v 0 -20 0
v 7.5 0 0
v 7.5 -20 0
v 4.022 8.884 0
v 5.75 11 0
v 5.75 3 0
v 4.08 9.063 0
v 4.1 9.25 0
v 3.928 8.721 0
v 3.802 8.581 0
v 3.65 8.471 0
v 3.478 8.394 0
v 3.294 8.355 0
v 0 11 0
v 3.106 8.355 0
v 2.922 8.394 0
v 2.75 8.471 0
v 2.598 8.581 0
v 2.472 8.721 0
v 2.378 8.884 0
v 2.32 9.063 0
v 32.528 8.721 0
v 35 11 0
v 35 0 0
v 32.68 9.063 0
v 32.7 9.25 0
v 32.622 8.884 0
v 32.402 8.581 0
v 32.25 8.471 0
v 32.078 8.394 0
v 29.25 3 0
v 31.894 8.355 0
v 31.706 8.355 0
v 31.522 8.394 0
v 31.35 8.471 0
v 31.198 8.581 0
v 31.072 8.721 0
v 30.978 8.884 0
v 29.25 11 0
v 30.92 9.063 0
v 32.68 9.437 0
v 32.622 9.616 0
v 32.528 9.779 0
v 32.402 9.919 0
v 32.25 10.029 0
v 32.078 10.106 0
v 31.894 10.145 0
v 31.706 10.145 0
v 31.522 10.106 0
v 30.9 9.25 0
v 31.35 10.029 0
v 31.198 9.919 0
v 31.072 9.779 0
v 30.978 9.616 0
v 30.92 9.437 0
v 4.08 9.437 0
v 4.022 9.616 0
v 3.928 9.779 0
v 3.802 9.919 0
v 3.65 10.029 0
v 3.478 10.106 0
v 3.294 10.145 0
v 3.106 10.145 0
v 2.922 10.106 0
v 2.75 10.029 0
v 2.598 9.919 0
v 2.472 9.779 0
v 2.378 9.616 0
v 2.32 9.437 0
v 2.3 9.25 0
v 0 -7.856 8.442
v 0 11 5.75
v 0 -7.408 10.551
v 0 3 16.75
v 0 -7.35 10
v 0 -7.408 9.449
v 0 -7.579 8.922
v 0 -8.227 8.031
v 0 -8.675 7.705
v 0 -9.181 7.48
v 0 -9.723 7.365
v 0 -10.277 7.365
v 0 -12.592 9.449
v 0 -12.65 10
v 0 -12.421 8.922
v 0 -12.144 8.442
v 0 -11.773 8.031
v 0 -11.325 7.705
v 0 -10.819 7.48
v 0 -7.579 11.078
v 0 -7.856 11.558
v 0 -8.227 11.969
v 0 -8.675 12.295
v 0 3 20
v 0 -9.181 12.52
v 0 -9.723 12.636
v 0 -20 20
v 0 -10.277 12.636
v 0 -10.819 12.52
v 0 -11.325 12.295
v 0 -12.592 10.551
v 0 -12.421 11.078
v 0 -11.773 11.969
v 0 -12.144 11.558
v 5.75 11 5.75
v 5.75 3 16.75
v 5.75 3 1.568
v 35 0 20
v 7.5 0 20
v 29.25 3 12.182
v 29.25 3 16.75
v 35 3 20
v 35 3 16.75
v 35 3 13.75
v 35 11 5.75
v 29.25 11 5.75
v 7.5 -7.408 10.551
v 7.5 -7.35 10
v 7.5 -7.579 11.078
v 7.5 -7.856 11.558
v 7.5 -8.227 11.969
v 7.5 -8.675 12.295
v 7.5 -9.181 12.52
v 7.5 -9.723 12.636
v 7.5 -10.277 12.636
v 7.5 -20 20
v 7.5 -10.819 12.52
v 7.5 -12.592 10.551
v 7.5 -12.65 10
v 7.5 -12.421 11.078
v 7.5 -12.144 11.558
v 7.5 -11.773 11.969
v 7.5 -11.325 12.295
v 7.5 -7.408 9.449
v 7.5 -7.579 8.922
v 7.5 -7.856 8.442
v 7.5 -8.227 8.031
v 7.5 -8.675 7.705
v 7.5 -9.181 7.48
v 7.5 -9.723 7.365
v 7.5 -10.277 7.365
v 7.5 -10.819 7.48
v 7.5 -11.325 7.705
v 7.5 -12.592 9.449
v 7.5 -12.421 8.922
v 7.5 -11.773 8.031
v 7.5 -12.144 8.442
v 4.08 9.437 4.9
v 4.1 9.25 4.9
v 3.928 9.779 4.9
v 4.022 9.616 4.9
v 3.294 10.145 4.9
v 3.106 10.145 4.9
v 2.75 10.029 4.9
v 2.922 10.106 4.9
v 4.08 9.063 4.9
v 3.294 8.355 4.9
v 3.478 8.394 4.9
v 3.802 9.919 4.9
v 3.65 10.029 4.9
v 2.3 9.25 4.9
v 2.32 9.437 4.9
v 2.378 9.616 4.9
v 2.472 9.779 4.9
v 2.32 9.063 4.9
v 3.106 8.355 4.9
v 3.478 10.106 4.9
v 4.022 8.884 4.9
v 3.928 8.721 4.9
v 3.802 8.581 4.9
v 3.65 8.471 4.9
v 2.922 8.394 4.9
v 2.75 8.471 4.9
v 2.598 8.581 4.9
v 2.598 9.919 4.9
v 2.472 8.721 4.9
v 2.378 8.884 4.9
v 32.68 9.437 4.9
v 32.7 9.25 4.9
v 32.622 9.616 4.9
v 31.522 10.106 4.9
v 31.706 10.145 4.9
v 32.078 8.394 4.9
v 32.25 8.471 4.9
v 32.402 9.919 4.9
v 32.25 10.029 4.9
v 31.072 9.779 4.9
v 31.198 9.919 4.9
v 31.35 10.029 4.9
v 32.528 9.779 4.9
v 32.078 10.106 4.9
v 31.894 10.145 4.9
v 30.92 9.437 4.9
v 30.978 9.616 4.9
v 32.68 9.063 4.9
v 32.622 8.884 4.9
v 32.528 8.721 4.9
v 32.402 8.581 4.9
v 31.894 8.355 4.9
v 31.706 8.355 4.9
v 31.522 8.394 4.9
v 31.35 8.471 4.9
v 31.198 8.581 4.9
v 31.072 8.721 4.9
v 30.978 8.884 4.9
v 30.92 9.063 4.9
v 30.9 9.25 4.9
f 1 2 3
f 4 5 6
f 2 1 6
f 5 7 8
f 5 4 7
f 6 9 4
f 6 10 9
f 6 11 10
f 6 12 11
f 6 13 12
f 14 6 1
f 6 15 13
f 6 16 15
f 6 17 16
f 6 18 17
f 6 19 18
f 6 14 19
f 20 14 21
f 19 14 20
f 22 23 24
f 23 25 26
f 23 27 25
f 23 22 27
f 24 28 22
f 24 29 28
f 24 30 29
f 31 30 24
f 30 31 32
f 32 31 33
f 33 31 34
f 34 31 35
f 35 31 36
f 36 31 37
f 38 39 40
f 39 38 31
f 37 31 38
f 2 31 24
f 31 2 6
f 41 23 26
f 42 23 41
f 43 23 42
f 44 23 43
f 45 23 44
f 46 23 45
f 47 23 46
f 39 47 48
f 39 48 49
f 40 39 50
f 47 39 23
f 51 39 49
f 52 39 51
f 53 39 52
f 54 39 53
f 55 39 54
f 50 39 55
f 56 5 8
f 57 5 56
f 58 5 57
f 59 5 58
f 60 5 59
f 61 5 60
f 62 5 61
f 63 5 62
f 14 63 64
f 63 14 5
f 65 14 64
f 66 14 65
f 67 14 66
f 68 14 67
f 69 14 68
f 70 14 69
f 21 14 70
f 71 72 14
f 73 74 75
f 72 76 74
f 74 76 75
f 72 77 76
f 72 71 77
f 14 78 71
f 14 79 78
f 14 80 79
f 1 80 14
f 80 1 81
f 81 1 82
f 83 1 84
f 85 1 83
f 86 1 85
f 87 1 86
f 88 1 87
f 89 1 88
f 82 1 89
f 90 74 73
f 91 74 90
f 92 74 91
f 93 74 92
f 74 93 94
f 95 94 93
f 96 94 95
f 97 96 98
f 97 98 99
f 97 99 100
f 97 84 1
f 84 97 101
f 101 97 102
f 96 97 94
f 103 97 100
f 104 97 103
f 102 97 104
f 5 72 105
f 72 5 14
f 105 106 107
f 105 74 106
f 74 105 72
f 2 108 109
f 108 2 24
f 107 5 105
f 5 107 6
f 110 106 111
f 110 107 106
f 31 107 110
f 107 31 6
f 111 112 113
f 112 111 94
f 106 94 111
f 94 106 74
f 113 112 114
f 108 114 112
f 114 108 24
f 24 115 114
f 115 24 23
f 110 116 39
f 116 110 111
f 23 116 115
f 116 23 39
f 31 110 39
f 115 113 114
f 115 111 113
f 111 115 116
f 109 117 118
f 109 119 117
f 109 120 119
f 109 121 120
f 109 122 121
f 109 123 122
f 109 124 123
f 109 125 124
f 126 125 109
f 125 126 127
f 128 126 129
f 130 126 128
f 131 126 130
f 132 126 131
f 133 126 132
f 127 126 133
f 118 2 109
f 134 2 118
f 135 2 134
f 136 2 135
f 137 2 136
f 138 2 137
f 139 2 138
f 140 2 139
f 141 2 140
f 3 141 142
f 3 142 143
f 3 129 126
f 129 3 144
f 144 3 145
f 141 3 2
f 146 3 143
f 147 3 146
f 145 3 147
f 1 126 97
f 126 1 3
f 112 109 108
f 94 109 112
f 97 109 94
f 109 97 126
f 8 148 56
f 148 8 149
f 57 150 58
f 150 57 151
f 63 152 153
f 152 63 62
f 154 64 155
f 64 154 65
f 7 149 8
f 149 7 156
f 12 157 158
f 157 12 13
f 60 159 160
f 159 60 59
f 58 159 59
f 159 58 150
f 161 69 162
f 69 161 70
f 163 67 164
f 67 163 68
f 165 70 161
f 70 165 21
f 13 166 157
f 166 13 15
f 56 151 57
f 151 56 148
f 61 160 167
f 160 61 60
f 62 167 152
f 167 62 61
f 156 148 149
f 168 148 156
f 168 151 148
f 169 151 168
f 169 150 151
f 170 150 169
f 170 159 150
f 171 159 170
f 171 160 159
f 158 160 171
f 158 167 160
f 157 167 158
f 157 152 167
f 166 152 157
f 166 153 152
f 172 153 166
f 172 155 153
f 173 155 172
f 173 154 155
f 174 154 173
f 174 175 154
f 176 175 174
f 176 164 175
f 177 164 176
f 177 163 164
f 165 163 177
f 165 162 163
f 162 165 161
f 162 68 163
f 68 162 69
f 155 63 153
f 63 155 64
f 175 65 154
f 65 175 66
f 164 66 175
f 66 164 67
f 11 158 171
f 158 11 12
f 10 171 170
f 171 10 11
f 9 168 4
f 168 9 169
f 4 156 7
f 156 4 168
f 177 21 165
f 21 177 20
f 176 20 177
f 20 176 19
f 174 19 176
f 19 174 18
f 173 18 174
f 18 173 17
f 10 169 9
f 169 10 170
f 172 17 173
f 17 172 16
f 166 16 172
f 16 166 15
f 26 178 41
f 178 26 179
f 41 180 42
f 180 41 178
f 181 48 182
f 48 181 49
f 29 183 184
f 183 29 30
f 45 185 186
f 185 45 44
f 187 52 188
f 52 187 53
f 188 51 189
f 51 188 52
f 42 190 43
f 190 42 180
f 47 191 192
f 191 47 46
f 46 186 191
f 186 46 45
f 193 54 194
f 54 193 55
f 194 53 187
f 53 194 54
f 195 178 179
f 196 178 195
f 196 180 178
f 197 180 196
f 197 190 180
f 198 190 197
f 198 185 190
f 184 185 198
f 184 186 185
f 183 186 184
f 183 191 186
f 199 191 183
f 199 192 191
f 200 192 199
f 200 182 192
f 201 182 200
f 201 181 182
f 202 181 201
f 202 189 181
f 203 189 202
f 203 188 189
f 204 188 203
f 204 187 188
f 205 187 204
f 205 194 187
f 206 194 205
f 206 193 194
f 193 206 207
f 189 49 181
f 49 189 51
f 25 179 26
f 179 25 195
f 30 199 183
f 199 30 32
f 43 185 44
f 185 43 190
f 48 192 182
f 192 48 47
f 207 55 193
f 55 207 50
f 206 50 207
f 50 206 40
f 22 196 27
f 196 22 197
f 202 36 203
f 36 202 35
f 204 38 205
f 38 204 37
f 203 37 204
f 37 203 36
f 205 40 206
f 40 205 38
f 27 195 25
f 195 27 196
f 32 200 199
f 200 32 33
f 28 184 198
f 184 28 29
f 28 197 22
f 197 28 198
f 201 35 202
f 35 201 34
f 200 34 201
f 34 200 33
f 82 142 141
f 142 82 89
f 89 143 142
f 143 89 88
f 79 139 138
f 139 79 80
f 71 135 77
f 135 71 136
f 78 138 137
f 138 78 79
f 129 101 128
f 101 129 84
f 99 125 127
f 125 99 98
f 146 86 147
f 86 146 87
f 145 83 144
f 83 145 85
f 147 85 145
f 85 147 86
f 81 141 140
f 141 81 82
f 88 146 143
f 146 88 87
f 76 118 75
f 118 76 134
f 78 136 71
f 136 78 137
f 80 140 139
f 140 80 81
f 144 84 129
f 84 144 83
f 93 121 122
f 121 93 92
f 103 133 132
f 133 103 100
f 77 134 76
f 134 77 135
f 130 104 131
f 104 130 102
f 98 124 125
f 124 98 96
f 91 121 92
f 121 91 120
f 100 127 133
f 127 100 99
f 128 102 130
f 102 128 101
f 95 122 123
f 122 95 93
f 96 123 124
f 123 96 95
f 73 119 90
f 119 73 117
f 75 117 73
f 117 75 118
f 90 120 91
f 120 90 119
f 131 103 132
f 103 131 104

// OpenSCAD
$fn = 30;

// Uncomment for mirror copy
//mirror([1,0,0])

rotate([-90,0,0]) {
	//translate([0,-16.75+.1,0])
	//rotate([0,0,-90])
	//import("servo-mount.stl");

	difference() {
		union() {
			rotate([90,0,90])
			linear_extrude(height = 5.75, center = false, convexity = 0)
			polygon(points=[[0,0],[0,11],[-5.75,11],[-16.75,3],[-16.75,0]]);
			
			translate([0,-16.75,0])
			cube([35,16.75,3]);
			
			translate([29.25,0,0])
			rotate([90,0,90])
			linear_extrude(height = 5.75, center = false, convexity = 0)
			polygon(points=[[0,0],[0,11],[-5.75,11],[-16.75,3],[-16.75,0]]);
			
			translate([0,-20,-20])
			cube([7.5,20,20+3]);
			
			translate([27.5,-20,0])
			cube([7.5,20,3]);
		
			translate([7.5,-20,0])
			cube([20,20,3]);
		}
	
		color("grey")
		translate([3.2,.1,9.25])
		rotate([90,0,0])
		cylinder(h = 5, d = 1.8);
		
		color("grey")
		translate([35-3.2,.1,9.25])
		rotate([90,0,0])
		cylinder(h = 5, d = 1.8);
	
		//color("red")
		//translate([35/2,-16.75-7.5,-1])
		//cylinder(h = 5, d = 5.3);

		color("blue")
        rotate([0,90,0])
		translate([10,-10,-2])
		cylinder(h = 40, d = 5.3);
	}
}
